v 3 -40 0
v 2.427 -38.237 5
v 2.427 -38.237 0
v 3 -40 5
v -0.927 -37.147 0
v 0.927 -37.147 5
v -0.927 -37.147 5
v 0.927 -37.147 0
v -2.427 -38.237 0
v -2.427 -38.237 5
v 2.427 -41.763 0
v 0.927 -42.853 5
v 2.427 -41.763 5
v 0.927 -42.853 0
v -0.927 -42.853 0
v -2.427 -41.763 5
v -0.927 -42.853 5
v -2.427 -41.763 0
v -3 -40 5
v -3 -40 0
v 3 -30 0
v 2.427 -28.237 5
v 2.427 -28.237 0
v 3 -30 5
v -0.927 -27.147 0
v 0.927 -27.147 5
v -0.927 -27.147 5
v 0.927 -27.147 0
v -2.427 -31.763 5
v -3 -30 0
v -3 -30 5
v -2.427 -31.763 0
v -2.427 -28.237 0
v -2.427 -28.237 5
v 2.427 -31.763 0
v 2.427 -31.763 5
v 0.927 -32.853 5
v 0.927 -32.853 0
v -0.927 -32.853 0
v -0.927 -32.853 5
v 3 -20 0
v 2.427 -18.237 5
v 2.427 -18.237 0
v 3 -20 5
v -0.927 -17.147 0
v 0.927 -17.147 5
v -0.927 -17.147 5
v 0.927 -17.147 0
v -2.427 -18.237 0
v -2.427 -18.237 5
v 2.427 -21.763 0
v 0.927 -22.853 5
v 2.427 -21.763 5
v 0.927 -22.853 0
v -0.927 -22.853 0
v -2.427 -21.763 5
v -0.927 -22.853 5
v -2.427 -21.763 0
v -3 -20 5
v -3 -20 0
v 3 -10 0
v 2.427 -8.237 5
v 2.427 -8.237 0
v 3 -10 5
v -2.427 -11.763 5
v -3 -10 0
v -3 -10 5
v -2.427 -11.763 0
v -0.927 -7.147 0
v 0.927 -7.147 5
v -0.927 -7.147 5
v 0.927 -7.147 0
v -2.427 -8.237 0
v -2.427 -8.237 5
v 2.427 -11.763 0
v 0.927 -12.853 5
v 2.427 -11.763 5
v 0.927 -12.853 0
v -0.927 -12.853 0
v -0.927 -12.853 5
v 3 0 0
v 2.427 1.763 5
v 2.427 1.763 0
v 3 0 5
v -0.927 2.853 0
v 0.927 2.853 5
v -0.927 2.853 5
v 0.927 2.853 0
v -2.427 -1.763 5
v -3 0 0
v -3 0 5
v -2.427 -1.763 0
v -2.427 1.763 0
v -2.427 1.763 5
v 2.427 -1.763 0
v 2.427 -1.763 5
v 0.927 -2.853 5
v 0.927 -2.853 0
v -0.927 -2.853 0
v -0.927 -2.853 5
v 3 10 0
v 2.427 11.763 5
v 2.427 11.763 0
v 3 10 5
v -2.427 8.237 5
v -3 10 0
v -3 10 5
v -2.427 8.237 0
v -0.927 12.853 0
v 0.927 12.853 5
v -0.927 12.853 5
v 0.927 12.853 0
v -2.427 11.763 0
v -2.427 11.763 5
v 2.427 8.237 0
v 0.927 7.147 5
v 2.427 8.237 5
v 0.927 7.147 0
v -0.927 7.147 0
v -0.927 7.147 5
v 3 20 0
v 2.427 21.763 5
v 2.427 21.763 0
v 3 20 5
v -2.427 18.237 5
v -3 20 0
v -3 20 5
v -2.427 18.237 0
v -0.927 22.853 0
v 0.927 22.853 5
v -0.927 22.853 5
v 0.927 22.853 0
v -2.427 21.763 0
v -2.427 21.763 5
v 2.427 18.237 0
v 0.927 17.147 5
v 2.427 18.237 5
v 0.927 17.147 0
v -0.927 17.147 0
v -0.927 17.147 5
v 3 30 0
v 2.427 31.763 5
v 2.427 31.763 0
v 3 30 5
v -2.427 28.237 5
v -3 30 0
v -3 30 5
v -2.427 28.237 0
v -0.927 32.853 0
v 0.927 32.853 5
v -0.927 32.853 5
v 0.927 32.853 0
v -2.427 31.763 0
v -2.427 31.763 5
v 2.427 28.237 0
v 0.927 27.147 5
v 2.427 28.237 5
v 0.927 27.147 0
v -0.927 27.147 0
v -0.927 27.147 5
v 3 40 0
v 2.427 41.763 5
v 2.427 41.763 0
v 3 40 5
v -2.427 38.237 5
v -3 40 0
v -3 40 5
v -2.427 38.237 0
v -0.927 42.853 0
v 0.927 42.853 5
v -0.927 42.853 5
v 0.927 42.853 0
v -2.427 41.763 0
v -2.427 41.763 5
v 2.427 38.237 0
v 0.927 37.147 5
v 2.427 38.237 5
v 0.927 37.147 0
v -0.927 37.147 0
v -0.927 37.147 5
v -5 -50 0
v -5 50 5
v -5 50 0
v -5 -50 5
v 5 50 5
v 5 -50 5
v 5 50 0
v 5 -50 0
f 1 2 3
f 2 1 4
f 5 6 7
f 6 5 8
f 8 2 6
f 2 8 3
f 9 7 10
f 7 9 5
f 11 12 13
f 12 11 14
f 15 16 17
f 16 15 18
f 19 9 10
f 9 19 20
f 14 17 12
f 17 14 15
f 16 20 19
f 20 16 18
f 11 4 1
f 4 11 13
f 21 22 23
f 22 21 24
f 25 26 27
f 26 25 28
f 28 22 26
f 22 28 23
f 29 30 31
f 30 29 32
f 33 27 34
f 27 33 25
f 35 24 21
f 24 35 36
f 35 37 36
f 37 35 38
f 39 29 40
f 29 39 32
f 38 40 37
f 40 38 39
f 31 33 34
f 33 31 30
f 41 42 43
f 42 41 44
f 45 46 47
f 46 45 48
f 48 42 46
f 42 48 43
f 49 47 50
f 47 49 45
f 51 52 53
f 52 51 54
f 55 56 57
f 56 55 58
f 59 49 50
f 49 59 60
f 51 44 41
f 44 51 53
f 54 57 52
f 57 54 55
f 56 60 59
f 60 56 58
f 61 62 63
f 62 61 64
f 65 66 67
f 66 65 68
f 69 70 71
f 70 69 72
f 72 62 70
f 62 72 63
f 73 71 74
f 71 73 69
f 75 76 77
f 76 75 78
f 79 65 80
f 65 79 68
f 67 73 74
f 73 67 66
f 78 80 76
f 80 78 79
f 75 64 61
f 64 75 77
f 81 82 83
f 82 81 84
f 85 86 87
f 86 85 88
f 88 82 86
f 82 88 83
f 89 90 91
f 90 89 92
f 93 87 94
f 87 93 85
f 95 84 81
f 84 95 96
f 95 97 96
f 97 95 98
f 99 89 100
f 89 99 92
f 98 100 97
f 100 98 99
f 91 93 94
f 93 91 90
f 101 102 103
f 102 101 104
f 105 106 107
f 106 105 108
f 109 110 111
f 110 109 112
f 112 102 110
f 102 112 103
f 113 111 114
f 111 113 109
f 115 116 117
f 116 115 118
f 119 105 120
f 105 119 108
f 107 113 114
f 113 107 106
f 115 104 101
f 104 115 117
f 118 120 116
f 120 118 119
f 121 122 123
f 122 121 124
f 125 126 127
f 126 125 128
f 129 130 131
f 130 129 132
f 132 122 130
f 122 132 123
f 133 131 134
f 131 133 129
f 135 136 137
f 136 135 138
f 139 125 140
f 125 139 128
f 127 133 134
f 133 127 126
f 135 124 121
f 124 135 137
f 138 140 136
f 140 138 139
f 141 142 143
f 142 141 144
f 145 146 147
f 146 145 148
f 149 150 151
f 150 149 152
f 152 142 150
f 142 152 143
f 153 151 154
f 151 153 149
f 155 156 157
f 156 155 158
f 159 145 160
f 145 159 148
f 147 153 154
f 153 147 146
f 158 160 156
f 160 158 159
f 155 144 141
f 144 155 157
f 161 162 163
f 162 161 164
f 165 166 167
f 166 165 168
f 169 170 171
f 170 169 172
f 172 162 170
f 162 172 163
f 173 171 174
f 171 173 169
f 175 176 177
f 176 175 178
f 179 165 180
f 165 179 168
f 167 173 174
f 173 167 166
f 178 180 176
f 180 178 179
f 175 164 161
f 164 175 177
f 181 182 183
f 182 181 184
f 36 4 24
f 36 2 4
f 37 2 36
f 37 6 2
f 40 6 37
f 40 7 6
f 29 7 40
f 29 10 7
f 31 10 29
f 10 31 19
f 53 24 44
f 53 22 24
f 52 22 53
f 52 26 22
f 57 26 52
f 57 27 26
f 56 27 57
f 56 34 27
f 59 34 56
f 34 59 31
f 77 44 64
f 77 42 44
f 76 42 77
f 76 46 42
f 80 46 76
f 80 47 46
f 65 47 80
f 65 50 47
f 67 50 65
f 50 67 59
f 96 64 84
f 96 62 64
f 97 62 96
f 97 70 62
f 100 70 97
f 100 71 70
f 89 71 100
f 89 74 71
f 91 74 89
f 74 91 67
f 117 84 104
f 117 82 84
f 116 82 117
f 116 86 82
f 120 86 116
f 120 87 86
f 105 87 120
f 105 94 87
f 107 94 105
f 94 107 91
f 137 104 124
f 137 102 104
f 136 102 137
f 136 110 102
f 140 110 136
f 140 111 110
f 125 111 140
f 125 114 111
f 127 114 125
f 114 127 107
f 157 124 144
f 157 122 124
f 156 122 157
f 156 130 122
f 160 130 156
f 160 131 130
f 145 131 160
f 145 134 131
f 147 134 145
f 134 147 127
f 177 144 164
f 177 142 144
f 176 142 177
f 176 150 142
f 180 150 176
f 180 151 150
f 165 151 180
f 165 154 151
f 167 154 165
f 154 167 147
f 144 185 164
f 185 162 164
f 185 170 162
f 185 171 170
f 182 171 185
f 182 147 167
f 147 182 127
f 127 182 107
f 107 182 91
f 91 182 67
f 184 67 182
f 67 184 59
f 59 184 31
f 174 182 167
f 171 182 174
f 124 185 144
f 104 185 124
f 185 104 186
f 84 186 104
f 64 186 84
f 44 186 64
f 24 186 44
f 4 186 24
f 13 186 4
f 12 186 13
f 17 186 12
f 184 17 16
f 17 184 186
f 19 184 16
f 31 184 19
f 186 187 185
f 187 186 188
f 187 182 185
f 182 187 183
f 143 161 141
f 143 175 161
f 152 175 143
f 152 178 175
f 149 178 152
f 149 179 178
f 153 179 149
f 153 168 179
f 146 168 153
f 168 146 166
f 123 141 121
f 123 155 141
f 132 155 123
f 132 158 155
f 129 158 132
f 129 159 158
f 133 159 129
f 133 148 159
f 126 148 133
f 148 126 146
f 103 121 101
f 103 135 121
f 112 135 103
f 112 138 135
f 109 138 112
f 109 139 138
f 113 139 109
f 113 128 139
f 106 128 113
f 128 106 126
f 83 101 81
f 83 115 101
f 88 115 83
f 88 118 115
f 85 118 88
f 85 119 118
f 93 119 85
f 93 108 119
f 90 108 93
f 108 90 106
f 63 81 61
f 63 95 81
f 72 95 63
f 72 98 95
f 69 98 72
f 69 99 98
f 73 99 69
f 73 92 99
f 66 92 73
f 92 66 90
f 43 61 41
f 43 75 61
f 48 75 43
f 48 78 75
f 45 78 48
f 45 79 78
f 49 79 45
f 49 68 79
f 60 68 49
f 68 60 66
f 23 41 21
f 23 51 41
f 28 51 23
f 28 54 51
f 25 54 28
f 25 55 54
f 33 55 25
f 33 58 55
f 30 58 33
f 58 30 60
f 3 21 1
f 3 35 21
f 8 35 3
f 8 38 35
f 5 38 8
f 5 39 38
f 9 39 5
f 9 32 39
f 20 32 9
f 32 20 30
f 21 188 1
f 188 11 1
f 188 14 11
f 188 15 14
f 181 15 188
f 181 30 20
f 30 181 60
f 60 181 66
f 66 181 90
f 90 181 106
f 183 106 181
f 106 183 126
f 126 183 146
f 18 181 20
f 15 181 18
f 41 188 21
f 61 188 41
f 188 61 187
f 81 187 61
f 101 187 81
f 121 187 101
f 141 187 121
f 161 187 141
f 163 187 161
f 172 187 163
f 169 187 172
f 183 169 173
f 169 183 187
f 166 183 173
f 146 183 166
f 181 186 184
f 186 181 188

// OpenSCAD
n=10;
ancho=10;
diam_hueco=6;
alto=5;

translate([-ancho/2,-n*ancho/2,0])
difference()
{
    // Pieza solida
    cube([ancho,n*ancho,alto],center=false);
    
    for(i=[1:n-1])
    {
        translate([ancho/2,i*ancho,0])
            cylinder(d=diam_hueco,h=alto*3,center=true);
    }
}
